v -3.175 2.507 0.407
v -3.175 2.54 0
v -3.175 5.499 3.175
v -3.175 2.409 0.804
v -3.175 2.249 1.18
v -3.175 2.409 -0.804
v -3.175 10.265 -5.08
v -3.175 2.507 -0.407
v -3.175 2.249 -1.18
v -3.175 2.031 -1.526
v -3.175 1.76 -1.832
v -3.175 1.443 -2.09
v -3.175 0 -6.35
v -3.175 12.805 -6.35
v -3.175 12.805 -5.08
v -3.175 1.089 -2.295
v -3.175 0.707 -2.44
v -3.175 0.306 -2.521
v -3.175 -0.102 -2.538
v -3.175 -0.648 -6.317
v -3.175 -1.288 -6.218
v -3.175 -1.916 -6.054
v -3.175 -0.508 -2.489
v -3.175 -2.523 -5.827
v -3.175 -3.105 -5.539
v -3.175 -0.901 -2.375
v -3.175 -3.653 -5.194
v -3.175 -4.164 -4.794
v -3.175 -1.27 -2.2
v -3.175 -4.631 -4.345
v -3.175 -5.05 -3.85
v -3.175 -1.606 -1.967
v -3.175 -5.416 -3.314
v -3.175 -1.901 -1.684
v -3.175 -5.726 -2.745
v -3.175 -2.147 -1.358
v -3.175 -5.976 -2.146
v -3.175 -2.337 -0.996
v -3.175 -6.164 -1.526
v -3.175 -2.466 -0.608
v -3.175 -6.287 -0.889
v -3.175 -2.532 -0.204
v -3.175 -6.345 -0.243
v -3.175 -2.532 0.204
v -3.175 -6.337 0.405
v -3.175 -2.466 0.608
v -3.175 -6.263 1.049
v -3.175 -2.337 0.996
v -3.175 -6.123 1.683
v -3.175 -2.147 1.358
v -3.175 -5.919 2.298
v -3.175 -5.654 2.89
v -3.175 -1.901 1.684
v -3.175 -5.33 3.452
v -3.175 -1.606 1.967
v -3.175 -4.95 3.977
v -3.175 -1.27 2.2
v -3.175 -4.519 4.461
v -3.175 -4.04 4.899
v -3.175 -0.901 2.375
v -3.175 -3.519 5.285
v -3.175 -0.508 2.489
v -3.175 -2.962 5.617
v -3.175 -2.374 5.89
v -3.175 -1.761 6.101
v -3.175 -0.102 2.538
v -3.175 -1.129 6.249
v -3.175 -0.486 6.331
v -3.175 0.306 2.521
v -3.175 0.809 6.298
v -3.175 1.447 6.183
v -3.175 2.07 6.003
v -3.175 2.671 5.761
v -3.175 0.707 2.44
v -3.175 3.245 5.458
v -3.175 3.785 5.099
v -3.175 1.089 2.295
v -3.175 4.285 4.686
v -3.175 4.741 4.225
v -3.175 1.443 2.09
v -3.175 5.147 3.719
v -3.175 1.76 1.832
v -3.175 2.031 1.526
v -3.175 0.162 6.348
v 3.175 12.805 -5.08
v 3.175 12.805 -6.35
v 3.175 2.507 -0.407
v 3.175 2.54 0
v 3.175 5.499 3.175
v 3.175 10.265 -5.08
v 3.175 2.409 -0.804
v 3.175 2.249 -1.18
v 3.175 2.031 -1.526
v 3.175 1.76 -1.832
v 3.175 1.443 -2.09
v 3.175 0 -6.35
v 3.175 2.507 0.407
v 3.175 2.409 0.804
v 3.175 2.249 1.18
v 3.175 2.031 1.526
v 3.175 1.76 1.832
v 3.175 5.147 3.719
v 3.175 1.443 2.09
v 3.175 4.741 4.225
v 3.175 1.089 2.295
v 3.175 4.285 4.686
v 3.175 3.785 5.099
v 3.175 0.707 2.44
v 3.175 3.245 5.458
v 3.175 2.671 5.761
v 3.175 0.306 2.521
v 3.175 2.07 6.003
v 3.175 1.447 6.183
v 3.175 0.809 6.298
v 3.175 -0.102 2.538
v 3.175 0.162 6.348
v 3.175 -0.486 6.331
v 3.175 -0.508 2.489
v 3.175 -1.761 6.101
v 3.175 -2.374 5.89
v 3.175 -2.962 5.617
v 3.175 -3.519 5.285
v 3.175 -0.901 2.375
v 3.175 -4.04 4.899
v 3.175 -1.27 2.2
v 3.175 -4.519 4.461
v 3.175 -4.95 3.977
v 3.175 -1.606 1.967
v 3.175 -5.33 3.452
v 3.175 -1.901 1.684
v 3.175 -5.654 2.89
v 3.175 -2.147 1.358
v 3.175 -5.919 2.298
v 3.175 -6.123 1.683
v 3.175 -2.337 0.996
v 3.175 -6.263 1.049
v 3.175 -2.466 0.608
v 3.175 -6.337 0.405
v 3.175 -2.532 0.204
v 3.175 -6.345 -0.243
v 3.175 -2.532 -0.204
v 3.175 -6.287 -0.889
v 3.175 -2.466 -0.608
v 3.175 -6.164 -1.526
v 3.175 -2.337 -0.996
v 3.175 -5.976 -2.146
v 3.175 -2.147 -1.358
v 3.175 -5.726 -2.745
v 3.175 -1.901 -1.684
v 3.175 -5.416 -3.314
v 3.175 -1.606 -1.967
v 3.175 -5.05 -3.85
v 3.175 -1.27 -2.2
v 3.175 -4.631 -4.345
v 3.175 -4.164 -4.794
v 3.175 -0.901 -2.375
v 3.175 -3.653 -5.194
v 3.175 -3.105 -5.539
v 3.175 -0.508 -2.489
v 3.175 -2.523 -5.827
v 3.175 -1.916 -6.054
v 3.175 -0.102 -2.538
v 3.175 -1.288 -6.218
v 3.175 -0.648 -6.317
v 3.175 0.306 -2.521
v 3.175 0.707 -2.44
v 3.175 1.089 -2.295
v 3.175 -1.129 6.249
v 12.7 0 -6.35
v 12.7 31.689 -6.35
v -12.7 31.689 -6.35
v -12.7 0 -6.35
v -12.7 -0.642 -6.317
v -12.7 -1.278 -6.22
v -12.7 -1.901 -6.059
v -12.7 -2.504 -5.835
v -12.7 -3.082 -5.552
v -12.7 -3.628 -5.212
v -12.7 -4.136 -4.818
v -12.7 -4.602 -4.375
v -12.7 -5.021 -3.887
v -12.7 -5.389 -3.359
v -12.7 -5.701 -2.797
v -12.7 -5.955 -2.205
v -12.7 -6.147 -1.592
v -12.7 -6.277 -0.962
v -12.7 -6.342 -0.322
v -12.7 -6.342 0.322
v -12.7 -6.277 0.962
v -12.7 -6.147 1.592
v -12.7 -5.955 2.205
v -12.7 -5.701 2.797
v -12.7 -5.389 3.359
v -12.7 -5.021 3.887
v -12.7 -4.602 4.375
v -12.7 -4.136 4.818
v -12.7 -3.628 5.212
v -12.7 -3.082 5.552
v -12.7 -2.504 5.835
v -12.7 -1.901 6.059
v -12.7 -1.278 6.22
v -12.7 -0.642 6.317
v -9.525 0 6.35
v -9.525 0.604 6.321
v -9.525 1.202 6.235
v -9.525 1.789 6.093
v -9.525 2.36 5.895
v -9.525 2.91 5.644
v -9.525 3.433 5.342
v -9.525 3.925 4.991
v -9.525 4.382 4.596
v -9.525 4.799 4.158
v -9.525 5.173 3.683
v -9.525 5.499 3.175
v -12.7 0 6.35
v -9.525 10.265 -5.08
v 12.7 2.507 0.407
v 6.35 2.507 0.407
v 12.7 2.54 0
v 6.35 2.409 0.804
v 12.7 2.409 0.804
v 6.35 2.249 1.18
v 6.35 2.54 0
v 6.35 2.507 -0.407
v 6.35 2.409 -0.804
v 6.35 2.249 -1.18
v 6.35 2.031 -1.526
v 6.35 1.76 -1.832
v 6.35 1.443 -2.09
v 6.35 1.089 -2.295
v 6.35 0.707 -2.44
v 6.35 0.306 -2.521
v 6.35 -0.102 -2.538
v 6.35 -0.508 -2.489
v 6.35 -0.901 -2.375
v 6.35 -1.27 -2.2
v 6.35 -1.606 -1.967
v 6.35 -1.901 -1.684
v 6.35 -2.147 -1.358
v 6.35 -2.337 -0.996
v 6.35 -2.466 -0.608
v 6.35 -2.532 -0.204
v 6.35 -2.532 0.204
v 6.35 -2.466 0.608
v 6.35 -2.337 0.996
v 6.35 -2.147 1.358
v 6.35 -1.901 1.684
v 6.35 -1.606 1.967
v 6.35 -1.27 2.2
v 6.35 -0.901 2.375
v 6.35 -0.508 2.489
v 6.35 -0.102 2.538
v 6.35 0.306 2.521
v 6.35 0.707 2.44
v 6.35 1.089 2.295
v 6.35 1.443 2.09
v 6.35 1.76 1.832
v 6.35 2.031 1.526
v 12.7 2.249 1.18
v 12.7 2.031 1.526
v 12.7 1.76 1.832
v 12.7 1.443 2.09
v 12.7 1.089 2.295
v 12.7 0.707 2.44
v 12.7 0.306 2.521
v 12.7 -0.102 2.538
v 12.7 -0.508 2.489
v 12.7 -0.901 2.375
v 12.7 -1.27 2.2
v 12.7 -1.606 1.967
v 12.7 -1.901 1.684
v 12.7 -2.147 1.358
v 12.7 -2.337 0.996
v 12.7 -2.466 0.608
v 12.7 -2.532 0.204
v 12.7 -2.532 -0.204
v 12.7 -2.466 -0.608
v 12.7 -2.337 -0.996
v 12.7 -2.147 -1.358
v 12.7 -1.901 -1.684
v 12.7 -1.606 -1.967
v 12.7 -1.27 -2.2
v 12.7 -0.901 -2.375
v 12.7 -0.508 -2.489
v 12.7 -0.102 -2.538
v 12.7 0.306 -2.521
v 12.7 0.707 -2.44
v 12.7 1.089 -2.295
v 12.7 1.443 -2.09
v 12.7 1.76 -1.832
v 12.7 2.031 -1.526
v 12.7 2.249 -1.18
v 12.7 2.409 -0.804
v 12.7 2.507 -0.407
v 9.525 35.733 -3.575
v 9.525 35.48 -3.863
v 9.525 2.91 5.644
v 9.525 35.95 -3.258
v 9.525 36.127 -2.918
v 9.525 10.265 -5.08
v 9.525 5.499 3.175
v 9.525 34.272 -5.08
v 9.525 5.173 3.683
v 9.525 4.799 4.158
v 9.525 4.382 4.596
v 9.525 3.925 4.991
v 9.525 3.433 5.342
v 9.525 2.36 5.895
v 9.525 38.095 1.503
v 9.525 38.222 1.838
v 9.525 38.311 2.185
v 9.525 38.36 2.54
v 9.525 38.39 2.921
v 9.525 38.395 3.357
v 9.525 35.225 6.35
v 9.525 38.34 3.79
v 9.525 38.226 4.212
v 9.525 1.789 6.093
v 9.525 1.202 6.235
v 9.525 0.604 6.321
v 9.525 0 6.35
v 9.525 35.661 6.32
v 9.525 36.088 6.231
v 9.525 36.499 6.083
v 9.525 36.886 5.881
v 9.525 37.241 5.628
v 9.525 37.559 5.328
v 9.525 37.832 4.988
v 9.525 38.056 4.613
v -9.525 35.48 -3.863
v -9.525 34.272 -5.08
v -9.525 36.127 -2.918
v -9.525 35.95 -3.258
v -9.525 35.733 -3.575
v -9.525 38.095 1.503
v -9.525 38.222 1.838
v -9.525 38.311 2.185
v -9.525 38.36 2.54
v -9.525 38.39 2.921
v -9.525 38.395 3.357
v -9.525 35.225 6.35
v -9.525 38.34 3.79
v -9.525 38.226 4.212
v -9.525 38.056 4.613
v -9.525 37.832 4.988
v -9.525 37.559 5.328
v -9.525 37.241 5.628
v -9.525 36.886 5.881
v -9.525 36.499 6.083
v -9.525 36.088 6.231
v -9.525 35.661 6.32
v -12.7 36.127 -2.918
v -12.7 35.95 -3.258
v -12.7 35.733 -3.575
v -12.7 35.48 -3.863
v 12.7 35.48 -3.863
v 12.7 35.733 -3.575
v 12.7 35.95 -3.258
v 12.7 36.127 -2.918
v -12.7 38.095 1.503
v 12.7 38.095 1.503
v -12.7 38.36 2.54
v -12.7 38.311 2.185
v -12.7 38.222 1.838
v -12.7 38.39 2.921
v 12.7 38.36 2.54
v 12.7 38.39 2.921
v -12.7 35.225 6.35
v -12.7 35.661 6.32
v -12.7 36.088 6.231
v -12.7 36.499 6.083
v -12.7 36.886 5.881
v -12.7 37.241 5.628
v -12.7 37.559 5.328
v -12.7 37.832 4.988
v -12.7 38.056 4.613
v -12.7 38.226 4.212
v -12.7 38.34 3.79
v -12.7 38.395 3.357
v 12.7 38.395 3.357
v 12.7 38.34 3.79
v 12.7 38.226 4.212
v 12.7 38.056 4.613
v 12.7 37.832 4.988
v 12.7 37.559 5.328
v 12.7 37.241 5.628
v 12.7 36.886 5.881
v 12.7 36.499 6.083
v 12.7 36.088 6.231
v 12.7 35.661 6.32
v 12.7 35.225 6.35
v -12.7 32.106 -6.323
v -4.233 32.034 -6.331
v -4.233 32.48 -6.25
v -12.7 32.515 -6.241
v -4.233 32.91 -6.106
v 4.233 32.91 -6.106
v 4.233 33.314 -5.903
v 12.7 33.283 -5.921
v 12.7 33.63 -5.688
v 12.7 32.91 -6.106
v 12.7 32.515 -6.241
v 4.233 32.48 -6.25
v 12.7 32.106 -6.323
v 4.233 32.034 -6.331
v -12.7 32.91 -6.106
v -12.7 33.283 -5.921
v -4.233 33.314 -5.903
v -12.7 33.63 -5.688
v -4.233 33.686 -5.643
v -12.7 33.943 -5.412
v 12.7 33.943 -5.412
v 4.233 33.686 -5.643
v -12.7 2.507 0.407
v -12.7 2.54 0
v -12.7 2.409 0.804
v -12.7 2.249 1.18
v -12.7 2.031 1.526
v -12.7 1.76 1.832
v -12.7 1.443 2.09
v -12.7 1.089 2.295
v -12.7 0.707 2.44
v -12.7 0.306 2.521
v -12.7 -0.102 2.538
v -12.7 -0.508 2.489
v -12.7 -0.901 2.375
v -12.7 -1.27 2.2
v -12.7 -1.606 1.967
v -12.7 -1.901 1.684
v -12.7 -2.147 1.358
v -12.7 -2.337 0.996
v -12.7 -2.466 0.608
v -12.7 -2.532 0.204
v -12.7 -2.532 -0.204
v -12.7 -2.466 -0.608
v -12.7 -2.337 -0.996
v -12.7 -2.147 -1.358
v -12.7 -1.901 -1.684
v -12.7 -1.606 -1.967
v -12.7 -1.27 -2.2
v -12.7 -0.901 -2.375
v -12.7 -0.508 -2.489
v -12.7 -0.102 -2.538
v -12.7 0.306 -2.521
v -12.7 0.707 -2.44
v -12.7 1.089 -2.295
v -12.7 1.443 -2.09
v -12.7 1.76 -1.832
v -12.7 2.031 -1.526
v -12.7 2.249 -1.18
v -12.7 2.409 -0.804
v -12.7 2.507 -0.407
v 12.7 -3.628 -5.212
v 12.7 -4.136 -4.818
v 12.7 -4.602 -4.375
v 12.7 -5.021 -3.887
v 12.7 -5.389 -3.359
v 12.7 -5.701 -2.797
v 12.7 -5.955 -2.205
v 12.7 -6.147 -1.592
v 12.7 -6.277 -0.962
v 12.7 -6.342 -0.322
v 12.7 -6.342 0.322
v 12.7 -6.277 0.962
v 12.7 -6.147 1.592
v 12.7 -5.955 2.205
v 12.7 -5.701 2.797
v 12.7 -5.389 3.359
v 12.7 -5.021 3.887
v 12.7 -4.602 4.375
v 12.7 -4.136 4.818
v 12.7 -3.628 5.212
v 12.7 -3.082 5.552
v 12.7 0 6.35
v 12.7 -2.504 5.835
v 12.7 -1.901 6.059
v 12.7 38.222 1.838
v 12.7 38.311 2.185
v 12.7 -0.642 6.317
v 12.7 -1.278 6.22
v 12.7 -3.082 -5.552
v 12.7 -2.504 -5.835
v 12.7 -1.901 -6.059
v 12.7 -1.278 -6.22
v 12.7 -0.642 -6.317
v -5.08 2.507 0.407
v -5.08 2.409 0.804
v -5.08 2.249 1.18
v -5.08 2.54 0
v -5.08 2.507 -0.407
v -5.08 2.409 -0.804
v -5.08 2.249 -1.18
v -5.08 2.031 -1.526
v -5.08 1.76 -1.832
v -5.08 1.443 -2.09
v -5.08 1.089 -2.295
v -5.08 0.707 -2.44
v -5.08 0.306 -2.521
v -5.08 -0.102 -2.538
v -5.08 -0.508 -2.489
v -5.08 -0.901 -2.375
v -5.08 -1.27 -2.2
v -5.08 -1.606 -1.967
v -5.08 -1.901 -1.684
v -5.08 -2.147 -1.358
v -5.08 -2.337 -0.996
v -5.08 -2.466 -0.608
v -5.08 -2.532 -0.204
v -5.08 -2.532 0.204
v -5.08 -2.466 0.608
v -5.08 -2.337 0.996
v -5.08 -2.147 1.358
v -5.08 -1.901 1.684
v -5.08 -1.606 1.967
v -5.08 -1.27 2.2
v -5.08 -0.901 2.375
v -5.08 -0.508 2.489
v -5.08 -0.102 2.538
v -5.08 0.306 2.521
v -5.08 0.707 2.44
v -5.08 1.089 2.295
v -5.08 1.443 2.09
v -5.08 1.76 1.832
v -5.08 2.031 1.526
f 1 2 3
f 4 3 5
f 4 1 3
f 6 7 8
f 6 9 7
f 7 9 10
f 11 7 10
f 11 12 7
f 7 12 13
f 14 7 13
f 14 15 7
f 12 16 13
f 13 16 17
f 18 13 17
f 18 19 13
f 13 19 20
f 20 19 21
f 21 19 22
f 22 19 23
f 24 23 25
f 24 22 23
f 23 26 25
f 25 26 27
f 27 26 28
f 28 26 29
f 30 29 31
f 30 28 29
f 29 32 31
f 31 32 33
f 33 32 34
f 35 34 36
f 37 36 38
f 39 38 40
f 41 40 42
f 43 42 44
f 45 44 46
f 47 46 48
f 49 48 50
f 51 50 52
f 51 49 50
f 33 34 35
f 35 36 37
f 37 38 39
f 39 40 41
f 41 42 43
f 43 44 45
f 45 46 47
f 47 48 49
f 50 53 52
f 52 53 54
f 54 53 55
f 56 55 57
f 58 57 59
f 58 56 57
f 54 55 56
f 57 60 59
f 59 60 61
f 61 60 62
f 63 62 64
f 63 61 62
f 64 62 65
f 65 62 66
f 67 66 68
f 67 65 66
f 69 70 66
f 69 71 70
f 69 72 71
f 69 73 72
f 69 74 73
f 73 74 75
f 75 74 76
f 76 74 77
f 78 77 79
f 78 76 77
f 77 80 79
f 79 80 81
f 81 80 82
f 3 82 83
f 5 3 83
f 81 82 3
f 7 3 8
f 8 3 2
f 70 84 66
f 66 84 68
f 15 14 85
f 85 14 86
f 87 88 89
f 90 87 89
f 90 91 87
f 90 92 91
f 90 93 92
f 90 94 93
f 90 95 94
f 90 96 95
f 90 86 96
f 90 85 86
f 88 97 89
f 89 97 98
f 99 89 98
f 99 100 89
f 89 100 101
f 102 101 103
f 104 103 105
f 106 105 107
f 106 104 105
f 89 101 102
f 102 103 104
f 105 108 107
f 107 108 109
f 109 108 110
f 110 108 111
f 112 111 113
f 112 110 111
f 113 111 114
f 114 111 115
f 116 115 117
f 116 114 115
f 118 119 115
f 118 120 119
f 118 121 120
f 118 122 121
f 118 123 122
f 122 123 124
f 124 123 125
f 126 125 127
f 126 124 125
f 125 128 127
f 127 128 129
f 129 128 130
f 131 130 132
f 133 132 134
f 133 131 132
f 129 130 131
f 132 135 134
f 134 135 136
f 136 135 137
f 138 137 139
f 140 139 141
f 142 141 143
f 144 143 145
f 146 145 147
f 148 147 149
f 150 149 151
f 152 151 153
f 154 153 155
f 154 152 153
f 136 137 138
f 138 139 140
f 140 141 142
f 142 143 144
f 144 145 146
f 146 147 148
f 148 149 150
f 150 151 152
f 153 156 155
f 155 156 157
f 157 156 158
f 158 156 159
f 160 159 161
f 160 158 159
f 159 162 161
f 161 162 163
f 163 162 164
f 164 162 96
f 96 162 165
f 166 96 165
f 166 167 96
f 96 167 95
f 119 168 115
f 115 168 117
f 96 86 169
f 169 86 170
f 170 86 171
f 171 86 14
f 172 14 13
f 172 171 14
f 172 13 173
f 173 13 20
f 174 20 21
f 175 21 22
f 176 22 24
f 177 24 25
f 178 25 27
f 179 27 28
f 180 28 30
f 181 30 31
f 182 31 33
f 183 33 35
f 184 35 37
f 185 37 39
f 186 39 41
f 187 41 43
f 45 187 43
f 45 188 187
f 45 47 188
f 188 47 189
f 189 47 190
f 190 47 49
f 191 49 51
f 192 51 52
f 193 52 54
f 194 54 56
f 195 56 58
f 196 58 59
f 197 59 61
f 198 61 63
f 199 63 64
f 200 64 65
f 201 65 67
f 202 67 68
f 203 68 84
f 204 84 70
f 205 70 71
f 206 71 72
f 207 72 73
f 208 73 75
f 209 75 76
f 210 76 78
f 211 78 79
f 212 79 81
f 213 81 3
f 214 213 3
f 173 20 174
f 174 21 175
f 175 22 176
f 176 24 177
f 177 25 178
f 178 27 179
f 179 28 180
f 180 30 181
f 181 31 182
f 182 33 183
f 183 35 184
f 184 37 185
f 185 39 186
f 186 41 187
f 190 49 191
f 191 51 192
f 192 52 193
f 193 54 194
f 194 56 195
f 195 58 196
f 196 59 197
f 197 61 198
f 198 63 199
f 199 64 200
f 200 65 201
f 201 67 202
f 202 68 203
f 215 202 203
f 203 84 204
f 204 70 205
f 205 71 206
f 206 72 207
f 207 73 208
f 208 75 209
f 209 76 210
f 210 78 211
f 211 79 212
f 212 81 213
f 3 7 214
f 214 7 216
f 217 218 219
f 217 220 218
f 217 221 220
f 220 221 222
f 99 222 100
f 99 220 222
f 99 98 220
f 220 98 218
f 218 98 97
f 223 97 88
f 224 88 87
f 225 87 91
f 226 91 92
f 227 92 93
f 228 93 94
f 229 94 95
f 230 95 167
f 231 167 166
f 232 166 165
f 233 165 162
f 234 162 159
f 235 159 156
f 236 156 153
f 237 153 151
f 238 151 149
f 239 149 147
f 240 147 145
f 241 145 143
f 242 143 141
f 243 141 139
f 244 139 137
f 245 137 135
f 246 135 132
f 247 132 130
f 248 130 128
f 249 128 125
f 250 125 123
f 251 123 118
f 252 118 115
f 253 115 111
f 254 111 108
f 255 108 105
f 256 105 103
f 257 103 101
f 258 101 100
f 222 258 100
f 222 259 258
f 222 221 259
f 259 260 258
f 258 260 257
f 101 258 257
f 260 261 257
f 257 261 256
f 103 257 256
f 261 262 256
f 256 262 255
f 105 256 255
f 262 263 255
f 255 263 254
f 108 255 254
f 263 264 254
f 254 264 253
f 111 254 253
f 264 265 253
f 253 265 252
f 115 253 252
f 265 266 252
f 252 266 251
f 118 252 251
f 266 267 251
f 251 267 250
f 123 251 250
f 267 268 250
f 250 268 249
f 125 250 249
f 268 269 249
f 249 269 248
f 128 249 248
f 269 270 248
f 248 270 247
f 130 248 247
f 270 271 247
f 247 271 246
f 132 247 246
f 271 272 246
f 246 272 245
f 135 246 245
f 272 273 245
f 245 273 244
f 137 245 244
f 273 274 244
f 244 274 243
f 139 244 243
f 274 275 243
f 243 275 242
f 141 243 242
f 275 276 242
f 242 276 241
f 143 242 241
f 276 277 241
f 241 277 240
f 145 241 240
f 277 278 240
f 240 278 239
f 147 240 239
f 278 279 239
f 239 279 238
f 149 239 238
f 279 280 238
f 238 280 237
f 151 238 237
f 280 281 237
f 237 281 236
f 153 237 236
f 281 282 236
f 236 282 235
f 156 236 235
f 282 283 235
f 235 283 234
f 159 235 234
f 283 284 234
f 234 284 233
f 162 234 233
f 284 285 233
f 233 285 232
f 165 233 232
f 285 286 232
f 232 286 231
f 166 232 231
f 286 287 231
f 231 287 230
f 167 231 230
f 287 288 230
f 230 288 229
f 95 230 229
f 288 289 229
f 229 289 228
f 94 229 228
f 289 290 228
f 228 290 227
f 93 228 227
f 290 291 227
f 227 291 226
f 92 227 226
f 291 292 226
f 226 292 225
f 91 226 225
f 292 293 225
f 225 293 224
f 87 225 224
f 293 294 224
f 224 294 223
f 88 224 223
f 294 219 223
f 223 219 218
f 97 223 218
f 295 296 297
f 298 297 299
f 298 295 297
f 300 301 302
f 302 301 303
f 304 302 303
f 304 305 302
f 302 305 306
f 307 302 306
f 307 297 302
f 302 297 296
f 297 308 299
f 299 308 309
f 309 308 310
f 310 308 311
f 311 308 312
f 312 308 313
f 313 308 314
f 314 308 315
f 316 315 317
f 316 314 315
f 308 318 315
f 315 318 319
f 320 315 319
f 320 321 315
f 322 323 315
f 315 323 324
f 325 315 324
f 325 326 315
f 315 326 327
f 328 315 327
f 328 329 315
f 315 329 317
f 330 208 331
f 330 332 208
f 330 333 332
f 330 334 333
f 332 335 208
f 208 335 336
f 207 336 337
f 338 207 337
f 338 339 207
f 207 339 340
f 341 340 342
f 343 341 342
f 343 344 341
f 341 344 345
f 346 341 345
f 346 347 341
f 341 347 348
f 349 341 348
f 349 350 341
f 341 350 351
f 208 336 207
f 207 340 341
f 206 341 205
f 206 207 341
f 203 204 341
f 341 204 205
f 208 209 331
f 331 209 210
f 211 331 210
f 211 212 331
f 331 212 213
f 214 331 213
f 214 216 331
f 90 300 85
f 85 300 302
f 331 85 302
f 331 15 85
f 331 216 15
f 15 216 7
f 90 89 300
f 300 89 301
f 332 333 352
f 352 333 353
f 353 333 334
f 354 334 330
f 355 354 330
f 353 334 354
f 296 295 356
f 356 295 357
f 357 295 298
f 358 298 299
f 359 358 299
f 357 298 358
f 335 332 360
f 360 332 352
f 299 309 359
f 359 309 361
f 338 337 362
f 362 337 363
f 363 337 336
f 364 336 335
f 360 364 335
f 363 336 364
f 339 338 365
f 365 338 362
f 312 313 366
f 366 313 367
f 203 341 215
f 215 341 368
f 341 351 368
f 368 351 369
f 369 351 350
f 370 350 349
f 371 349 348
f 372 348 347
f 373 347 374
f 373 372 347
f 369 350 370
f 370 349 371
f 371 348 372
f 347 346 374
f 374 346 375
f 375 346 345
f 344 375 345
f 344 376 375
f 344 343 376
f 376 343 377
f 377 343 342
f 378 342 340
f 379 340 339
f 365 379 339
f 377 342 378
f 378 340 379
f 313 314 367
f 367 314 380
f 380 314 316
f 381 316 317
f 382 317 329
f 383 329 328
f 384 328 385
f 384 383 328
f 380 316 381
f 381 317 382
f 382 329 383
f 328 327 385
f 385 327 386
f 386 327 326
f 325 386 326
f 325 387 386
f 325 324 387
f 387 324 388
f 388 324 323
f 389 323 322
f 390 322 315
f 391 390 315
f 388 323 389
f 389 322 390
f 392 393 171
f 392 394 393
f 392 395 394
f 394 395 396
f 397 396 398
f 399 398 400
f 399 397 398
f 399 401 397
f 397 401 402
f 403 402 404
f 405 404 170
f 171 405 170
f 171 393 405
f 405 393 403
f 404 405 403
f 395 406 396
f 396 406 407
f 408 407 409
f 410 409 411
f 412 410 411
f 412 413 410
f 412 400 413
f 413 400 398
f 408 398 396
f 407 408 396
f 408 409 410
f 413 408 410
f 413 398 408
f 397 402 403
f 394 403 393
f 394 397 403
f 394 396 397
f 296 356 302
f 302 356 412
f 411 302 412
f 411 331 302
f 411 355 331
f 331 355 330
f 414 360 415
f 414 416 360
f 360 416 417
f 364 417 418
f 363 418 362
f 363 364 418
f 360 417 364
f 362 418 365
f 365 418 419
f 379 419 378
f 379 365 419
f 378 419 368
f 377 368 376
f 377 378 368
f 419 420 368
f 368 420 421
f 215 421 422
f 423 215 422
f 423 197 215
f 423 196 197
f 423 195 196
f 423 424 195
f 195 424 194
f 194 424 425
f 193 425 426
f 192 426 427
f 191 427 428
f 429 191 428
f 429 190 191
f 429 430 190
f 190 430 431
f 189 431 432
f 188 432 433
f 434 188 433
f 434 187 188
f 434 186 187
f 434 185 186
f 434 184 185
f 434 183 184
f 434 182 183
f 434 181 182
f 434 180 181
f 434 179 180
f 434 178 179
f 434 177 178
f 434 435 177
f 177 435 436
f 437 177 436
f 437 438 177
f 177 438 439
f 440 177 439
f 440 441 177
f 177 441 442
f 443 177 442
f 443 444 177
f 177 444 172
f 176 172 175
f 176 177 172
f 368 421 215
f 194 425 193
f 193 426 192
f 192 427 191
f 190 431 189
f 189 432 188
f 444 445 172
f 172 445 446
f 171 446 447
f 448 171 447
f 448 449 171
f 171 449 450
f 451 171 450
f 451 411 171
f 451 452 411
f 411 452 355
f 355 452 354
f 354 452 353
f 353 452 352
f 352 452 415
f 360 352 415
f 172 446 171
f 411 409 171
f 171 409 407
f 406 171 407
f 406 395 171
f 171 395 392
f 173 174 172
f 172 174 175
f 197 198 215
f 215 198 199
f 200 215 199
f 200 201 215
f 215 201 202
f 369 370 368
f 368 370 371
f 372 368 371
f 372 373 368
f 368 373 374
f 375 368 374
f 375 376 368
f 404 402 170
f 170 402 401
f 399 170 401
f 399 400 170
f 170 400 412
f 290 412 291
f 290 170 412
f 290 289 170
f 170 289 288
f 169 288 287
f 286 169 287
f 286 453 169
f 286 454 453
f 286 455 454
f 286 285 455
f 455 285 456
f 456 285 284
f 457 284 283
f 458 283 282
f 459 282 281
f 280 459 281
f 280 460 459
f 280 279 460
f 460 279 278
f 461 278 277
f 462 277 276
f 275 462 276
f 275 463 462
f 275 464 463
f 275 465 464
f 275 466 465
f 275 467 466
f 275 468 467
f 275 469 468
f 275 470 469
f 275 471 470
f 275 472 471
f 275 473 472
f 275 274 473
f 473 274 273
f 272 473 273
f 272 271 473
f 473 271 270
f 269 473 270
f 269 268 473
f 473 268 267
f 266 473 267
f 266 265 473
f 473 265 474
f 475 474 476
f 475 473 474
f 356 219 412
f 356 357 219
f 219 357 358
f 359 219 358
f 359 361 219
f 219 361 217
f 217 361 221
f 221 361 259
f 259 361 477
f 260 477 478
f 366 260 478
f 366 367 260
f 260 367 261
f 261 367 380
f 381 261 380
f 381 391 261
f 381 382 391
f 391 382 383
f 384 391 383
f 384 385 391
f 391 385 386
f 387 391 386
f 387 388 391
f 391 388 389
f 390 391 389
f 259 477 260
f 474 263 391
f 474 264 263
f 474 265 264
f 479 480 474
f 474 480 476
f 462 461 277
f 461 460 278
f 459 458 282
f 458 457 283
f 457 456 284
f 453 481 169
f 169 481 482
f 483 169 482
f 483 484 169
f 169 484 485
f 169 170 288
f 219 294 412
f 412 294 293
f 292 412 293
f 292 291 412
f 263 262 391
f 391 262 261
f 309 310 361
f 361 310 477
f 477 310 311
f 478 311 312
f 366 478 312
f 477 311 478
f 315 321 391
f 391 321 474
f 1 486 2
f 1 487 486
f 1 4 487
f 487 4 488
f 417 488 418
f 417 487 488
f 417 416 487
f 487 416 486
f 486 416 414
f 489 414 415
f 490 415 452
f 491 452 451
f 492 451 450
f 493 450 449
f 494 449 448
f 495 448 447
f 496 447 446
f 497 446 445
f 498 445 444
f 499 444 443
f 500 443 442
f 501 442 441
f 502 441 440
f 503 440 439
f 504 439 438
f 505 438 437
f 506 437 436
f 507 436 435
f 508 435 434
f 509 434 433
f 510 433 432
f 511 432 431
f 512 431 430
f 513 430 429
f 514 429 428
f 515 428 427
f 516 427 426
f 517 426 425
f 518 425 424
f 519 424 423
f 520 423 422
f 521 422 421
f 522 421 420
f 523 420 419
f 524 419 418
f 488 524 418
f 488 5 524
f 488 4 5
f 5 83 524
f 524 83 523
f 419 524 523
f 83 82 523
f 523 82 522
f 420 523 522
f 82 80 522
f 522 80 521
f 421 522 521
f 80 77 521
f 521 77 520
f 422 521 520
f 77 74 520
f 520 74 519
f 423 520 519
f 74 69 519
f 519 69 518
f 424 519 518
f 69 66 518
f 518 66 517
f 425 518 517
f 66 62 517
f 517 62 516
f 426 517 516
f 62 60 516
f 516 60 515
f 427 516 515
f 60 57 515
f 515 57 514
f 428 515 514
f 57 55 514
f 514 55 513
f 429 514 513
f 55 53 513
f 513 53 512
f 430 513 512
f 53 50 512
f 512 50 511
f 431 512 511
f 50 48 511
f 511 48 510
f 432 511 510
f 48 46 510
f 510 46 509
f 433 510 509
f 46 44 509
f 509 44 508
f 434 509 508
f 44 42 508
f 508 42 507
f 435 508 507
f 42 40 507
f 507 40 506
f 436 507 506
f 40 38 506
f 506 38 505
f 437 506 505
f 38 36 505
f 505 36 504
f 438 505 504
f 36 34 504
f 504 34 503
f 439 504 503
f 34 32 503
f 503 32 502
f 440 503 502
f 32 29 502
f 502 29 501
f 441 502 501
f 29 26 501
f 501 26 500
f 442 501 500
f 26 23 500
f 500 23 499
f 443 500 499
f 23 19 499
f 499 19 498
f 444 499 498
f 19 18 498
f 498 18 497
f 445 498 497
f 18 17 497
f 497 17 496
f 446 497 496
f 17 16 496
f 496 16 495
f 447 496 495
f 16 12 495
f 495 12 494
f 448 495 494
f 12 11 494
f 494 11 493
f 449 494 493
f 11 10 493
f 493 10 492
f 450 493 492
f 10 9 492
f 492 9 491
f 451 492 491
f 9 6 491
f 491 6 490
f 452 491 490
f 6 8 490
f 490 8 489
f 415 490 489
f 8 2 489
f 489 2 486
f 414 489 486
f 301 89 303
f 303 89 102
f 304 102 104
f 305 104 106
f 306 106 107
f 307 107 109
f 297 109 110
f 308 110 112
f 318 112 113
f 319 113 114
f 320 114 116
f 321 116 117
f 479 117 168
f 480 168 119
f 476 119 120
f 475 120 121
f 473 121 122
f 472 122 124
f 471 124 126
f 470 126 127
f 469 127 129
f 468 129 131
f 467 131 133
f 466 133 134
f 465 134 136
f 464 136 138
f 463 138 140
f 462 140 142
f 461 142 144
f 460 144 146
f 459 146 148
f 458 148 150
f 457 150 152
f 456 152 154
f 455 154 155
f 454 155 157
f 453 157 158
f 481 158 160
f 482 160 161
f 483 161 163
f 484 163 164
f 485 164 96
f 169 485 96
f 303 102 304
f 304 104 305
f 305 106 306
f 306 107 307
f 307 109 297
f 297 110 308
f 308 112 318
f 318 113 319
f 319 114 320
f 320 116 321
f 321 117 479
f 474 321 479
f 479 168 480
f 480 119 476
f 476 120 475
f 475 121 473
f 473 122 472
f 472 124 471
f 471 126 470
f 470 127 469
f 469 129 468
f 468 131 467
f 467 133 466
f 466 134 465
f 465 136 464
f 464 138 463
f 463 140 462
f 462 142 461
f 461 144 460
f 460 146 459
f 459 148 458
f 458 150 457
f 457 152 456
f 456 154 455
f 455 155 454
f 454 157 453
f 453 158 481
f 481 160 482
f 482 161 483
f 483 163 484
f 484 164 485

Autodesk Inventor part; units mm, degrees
ref_plane "YZ Plane" through (0, 0, 0) normal (1, 0, 0) x (0, 1, 0)
ref_plane "XZ Plane" through (0, 0, 0) normal (0, 1, 0) x (-1, 0, 0)
ref_plane "XY Plane" through (0, 0, 0) normal (0, 0, 1) x (1, 0, 0)
sketch "Sketch1" plane through (0, 0, 0) normal (1, 0, 0) x (0, 1, 0)
  circle A0 centre (0, 0) radius 2.54
  circle A1 centre (0, 0) radius 6.35
  line L0 (0, 6.35) -> (40.2531, 6.35)
  line L1 (40.2531, 6.35) -> (40.2531, -6.35)
  line L2 (40.2531, -6.35) -> (0, -6.35)
  line L3 (40.2531, 6.35) -> (34.5987, -6.35)
  line L4 (35.1642, -5.08) -> (3.81, -5.08)
  line L5 (5.4993, 3.175) -> (10.2653, -5.08)
  line L6 (12.8053, -5.08) -> (12.8053, -6.35)
  dimension "d0" = 5.08
  dimension "d1" = 12.7
  dimension "d2" = 66
  dimension "d12" = 3.175
  dimension "d13" = 1.27
  dimension "d16" = 2.54
extrude "Extrusion1" add sketch "Sketch1" along normal mid plane 25.4 contours A1 | A1 L5 L4 | A1 L0 L3 L4 L5 | L4 L6 L2 A1 | L4 L3 L2 L6
chamfer "Chamfer1" distance 1.5875 distance2 3.175 1 edges at (0, 34.5987, -6.35) measured on face at (4.2333, 23.0658, -6.35)
chamfer "Chamfer2" distance 4.7625 distance2 1.5875 1 edges at (0, 40.2531, 6.35) measured on face at (4.2333, 38.7988, 3.0835)
fillet "Fillet1" radius 3.175 4 edges at (0, 38.6656, 6.35) (0, 38.316, 1.9992) (0, 35.8901, -3.4495) (0, 33.0112, -6.35)
extrude "Extrusion2" cut sketch "Sketch1" along normal mid plane 19.05 contours A1 L0 L3 L4 L5
extrude "Extrusion3" cut sketch "Sketch1" along normal mid plane 6.35 contours A1 | A1 L5 L4 | L4 L6 L2 A1
equation "\"d12\" = 0.25 * d1"
properties part number "LegV5"
